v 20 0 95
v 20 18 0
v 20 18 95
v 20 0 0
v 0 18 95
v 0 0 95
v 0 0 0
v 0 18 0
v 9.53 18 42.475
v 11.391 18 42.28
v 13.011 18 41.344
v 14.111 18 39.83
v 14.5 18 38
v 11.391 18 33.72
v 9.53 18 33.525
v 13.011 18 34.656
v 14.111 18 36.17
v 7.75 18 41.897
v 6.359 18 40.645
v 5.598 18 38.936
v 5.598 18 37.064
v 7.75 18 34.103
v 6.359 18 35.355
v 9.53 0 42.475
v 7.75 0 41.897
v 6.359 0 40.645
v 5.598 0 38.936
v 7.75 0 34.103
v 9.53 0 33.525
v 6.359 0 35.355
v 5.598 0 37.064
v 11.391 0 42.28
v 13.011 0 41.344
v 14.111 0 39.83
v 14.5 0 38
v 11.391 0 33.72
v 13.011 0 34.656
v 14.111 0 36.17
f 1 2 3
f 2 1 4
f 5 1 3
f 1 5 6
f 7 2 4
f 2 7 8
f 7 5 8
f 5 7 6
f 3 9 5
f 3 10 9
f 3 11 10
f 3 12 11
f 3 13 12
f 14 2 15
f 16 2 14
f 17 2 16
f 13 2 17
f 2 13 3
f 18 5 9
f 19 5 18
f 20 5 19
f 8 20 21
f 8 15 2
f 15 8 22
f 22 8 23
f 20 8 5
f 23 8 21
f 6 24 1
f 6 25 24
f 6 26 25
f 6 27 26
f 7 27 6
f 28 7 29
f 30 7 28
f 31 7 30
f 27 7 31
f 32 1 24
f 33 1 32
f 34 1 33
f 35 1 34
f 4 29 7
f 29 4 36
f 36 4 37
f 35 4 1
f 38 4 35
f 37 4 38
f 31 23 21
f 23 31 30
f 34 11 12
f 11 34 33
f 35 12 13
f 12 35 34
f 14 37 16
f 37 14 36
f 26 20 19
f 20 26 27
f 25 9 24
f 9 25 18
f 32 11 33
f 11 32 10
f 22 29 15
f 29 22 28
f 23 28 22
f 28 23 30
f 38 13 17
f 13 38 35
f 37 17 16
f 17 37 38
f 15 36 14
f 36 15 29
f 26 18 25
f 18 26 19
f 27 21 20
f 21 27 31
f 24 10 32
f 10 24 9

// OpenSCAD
difference() { 
  cube([20,18,95]);
  translate([10,25,38]) rotate([90,0,0]) cylinder(50,d=9);
}
